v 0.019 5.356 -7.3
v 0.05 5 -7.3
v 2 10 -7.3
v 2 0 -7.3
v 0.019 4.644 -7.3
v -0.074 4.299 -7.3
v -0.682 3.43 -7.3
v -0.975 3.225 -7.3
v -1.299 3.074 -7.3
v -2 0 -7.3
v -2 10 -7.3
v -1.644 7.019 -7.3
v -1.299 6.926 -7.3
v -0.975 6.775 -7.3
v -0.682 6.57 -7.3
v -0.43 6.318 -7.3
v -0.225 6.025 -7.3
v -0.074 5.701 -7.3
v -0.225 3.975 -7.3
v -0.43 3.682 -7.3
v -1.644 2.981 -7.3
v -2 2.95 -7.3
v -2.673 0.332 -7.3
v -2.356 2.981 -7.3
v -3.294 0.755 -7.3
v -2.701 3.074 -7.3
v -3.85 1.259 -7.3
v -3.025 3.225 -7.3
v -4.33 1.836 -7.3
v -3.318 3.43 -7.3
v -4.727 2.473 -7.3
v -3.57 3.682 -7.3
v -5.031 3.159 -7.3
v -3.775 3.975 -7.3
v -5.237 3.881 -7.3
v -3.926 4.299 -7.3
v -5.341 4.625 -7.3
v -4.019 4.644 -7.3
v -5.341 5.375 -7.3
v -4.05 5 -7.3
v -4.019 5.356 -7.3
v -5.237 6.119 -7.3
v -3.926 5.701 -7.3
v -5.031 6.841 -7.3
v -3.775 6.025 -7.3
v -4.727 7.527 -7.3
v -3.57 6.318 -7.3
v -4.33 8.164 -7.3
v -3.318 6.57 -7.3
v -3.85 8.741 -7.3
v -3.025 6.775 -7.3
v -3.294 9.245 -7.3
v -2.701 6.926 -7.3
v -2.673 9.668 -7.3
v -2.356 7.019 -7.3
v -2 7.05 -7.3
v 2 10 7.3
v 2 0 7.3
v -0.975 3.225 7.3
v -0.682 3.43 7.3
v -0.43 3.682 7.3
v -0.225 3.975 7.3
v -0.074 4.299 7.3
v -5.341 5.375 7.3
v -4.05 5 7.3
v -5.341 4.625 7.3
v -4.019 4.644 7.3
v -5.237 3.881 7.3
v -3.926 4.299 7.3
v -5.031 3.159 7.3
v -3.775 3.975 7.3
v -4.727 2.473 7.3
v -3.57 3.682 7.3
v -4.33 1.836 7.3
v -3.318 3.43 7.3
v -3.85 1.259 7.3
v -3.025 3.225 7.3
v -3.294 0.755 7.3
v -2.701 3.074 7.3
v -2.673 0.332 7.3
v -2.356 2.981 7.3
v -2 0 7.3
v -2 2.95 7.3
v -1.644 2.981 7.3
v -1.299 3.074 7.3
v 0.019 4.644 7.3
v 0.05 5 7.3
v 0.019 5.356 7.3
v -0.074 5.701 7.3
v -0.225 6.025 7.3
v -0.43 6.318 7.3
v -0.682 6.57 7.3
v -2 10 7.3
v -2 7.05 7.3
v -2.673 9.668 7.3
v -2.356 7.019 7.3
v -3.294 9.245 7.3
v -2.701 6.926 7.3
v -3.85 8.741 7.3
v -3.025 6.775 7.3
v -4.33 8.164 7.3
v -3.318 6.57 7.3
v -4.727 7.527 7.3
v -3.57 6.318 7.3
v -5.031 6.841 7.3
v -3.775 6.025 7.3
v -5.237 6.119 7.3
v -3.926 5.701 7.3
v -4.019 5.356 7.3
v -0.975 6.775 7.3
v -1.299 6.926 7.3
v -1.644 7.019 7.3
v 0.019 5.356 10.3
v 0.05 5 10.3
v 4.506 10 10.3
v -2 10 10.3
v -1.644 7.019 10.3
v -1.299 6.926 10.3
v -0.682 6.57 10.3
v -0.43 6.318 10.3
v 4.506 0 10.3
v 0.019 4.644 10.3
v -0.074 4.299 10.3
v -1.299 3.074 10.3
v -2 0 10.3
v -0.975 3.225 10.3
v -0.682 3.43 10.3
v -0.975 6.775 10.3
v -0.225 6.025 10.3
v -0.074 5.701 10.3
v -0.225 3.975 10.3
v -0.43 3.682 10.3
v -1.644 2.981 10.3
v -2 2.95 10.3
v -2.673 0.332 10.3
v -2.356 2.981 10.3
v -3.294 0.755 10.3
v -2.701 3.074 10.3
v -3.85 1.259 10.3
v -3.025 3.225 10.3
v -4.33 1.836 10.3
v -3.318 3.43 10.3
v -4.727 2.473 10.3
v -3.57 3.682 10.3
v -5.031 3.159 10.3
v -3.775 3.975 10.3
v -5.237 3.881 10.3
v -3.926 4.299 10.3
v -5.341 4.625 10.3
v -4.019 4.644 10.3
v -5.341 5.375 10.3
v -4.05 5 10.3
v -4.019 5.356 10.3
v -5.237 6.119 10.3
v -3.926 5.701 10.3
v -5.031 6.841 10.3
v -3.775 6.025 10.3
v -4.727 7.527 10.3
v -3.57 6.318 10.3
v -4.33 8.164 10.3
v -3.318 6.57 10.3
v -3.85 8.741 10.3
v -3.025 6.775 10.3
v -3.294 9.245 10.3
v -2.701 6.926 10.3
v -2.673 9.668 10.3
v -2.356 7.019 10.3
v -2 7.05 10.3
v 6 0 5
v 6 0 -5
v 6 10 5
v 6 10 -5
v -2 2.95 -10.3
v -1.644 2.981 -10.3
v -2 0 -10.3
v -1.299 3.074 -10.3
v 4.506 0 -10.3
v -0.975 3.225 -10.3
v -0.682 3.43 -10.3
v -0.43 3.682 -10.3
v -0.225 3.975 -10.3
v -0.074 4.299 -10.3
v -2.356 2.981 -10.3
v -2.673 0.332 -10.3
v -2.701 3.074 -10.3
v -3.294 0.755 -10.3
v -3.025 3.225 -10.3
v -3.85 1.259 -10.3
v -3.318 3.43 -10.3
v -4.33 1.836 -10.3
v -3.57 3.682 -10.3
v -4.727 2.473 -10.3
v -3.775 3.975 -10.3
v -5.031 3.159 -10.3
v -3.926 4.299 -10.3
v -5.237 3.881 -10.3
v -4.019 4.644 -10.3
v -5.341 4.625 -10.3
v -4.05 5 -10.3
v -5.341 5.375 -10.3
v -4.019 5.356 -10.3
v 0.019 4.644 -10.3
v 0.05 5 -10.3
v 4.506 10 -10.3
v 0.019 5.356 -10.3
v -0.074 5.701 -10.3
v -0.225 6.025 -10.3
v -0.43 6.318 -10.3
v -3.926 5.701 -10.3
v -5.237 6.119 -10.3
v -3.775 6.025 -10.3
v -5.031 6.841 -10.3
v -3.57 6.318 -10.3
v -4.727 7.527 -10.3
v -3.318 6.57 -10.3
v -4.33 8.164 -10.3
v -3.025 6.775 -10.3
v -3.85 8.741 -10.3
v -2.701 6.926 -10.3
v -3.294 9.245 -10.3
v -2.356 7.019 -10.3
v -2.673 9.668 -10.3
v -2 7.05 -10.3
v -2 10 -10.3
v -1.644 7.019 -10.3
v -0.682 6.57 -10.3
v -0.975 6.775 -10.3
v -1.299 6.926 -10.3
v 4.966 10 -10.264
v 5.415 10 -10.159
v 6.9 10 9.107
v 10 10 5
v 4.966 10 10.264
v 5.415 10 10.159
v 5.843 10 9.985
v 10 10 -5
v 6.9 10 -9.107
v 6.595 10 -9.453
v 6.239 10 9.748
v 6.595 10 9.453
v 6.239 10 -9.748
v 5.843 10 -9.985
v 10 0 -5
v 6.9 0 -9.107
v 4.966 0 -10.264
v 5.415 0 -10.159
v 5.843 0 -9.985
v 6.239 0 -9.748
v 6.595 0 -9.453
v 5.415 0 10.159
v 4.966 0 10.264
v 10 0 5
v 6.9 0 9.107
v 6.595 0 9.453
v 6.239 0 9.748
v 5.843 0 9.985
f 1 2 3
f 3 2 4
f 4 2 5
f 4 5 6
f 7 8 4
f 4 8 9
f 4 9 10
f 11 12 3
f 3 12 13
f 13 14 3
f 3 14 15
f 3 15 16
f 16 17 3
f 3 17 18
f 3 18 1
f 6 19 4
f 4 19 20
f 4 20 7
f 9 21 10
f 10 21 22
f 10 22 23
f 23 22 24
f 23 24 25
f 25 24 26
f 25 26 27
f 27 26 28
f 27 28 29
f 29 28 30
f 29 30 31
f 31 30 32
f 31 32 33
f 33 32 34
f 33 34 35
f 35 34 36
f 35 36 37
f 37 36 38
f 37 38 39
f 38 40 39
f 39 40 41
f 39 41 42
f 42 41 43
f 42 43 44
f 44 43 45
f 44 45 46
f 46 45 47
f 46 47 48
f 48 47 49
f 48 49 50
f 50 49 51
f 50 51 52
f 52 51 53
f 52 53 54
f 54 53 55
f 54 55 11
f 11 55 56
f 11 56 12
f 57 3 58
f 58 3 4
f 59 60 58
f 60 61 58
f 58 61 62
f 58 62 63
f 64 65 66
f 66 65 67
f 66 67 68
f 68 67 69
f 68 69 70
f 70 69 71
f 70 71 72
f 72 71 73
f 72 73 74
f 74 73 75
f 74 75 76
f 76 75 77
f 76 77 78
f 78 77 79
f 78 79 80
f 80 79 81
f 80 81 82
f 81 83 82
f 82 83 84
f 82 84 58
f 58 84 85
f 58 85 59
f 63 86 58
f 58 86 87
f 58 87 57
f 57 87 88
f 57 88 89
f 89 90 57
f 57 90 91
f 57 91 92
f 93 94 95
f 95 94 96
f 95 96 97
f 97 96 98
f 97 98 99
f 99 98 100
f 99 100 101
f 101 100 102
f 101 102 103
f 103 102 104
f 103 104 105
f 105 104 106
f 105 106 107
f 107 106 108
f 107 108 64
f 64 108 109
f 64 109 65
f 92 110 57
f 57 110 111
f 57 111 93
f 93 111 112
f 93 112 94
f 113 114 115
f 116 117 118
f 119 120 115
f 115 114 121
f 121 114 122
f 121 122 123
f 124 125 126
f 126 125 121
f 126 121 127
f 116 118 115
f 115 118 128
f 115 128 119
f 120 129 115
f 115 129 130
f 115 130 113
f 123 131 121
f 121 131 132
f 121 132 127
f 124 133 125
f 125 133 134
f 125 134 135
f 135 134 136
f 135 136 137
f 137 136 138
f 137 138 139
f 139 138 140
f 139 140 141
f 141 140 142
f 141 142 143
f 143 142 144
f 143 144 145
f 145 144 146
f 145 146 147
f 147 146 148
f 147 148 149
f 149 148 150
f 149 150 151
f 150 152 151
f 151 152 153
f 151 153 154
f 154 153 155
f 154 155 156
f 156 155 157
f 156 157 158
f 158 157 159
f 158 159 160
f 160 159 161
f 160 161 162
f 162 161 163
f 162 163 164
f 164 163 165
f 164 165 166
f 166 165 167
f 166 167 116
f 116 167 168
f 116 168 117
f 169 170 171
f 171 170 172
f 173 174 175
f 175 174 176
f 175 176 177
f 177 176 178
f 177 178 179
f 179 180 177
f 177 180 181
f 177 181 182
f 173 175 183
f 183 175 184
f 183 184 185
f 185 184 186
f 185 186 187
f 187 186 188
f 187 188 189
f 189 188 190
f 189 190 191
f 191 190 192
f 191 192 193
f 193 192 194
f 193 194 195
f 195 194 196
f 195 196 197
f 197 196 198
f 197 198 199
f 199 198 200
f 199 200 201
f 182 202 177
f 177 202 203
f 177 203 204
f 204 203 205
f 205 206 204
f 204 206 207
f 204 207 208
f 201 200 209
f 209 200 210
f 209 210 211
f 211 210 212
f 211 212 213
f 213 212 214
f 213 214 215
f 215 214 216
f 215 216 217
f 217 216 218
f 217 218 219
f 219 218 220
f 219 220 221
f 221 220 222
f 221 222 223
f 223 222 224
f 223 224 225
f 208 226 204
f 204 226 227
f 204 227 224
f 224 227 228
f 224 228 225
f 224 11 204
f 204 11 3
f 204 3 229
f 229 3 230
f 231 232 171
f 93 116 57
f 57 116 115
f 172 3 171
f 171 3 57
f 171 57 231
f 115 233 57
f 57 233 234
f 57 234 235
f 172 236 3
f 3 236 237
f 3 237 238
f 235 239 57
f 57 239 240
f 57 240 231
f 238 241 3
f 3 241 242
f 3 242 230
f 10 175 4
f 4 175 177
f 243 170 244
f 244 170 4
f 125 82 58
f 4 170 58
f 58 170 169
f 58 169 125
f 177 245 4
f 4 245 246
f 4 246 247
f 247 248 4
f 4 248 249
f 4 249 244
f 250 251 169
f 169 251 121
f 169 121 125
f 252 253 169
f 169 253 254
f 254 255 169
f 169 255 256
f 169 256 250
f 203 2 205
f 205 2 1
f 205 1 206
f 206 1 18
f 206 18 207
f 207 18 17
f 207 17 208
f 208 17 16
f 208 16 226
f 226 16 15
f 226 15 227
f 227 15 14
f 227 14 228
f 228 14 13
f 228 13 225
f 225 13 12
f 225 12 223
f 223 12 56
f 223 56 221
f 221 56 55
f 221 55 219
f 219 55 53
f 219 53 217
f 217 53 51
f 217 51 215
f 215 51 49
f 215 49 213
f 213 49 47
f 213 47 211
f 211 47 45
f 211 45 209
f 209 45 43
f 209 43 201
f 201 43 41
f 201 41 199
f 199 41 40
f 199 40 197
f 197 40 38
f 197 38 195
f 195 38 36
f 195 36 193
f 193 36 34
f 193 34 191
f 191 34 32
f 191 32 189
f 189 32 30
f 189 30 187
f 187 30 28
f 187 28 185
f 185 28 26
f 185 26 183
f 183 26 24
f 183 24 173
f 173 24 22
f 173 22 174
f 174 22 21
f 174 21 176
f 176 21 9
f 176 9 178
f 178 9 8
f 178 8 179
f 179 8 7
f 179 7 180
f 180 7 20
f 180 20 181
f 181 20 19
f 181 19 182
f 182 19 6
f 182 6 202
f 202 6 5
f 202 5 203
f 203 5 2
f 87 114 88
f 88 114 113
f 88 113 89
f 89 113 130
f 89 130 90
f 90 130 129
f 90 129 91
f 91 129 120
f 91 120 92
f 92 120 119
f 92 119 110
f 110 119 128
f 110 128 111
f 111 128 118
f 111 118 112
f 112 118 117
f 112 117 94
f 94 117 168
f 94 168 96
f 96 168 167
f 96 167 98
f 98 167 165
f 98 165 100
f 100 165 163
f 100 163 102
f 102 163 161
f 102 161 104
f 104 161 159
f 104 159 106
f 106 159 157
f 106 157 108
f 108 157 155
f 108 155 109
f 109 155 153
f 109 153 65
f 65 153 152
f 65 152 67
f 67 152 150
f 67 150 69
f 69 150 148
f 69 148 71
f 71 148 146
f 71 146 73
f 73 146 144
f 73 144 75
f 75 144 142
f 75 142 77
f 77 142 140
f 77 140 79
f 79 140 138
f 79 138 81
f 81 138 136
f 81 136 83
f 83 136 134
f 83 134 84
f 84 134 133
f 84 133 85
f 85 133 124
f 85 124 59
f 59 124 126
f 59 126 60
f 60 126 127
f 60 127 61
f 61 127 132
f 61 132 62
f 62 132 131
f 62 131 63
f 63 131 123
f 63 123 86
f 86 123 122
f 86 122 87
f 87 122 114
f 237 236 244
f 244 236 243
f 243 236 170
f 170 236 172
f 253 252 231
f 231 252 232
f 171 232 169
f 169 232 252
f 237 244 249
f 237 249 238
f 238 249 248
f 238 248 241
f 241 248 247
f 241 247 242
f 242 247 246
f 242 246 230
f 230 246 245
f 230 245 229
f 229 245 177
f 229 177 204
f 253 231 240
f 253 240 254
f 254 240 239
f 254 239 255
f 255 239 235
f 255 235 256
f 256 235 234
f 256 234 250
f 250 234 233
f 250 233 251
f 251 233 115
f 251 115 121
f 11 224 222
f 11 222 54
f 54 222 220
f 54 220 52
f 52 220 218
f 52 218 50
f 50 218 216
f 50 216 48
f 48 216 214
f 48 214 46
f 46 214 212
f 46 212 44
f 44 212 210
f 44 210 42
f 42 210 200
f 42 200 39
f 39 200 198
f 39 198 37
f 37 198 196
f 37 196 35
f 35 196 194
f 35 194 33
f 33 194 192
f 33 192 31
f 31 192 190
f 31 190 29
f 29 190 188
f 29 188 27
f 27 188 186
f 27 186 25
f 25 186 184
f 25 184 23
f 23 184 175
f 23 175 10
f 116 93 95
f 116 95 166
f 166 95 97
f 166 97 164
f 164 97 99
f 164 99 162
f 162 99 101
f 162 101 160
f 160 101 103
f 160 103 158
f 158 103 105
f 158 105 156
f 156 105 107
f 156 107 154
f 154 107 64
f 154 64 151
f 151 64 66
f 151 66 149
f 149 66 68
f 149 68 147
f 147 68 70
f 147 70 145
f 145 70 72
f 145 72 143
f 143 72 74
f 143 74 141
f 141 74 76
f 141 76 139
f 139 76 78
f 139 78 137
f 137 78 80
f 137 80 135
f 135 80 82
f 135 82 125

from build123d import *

# Parameters (mm, degrees)
BOSS_EXTRUDE1_DEPTH     = 10
CUT_EXTRUDE1_DEPTH      = 22.113029153
CUT_EXTRUDE1_DEPTH_BACK = 22.113029153
BOSS_EXTRUDE2_DEPTH     = 10
FILLET1_R               = 3
CUT_EXTRUDE2_DEPTH      = 25.987196722
CUT_EXTRUDE2_DEPTH_BACK = 25.987196722


with BuildPart() as part:
    # Sketch1 → Boss-Extrude1 (new body)
    with BuildSketch(Plane(origin=(0, 0, 0), x_dir=(1, 0, 0), z_dir=(0, 1, 0))):
        Polygon((-6, -10.3), (6, -10.3), (6, 10.3), (-6, 10.3), (-6, 7.3), (2, 7.3), (2, -7.3), (-6, -7.3), align=None)
    extrude(amount=BOSS_EXTRUDE1_DEPTH)

    # Sketch2 → Cut-Extrude1 (cut, two sides: drawn at the far end of the back side and taken through both)
    with BuildSketch(Plane.XY.offset(-7.3).offset(-CUT_EXTRUDE1_DEPTH_BACK)):
        with BuildLine():
            ThreePointArc((-3.280624847, 6.600781059), (-3.600781059, 3.719375153), (-0.719375153, 3.399218941))
            Line((-0.719375153, 3.399218941), (-3.280624847, 6.600781059))
        make_face()
        with BuildLine():
            Line((-3.280624847, 6.600781059), (-0.719375153, 3.399218941))
            ThreePointArc((-0.719375153, 3.399218941), (-0.152328366, 4.111963102), (0.05, 5))
            ThreePointArc((0.05, 5), (-1.111963102, 6.847671634), (-3.280624847, 6.600781059))
        make_face()
    extrude(amount=CUT_EXTRUDE1_DEPTH + CUT_EXTRUDE1_DEPTH_BACK, mode=Mode.SUBTRACT)

    # Sketch3 → Boss-Extrude2 (add)
    with BuildSketch(Plane(origin=(0, 10, 0), x_dir=(1, 0, 0), z_dir=(0, 1, 0))):
        Polygon((10, 5), (6, 10.3), (6, 5), align=None)
        Polygon((6, -10.3), (10, -5), (6, -5), align=None)
    extrude(amount=-BOSS_EXTRUDE2_DEPTH)

    # Fillet1
    fillet1_edges = [part.edges().sort_by_distance(p)[0] for p in [
        (6, 5, -10.3),
        (6, 5, 10.3),
    ]]
    fillet(fillet1_edges, radius=FILLET1_R)

    # Sketch4 → Cut-Extrude2 (cut, two sides: drawn at the far end of the back side and taken through both)
    with BuildSketch(Plane(origin=(0, 0, -10.3), x_dir=(-1, 0, 0), z_dir=(0, 0, -1)).offset(-CUT_EXTRUDE2_DEPTH_BACK)):
        with BuildLine():
            Line((2, 10), (6, 10))
            Line((6, 10), (6, 0))
            Line((6, 0), (2, 0))
            ThreePointArc((2, 0), (5.353933752, 5), (2, 10))
        make_face()
    extrude(amount=CUT_EXTRUDE2_DEPTH + CUT_EXTRUDE2_DEPTH_BACK, mode=Mode.SUBTRACT)


solid = part.part
